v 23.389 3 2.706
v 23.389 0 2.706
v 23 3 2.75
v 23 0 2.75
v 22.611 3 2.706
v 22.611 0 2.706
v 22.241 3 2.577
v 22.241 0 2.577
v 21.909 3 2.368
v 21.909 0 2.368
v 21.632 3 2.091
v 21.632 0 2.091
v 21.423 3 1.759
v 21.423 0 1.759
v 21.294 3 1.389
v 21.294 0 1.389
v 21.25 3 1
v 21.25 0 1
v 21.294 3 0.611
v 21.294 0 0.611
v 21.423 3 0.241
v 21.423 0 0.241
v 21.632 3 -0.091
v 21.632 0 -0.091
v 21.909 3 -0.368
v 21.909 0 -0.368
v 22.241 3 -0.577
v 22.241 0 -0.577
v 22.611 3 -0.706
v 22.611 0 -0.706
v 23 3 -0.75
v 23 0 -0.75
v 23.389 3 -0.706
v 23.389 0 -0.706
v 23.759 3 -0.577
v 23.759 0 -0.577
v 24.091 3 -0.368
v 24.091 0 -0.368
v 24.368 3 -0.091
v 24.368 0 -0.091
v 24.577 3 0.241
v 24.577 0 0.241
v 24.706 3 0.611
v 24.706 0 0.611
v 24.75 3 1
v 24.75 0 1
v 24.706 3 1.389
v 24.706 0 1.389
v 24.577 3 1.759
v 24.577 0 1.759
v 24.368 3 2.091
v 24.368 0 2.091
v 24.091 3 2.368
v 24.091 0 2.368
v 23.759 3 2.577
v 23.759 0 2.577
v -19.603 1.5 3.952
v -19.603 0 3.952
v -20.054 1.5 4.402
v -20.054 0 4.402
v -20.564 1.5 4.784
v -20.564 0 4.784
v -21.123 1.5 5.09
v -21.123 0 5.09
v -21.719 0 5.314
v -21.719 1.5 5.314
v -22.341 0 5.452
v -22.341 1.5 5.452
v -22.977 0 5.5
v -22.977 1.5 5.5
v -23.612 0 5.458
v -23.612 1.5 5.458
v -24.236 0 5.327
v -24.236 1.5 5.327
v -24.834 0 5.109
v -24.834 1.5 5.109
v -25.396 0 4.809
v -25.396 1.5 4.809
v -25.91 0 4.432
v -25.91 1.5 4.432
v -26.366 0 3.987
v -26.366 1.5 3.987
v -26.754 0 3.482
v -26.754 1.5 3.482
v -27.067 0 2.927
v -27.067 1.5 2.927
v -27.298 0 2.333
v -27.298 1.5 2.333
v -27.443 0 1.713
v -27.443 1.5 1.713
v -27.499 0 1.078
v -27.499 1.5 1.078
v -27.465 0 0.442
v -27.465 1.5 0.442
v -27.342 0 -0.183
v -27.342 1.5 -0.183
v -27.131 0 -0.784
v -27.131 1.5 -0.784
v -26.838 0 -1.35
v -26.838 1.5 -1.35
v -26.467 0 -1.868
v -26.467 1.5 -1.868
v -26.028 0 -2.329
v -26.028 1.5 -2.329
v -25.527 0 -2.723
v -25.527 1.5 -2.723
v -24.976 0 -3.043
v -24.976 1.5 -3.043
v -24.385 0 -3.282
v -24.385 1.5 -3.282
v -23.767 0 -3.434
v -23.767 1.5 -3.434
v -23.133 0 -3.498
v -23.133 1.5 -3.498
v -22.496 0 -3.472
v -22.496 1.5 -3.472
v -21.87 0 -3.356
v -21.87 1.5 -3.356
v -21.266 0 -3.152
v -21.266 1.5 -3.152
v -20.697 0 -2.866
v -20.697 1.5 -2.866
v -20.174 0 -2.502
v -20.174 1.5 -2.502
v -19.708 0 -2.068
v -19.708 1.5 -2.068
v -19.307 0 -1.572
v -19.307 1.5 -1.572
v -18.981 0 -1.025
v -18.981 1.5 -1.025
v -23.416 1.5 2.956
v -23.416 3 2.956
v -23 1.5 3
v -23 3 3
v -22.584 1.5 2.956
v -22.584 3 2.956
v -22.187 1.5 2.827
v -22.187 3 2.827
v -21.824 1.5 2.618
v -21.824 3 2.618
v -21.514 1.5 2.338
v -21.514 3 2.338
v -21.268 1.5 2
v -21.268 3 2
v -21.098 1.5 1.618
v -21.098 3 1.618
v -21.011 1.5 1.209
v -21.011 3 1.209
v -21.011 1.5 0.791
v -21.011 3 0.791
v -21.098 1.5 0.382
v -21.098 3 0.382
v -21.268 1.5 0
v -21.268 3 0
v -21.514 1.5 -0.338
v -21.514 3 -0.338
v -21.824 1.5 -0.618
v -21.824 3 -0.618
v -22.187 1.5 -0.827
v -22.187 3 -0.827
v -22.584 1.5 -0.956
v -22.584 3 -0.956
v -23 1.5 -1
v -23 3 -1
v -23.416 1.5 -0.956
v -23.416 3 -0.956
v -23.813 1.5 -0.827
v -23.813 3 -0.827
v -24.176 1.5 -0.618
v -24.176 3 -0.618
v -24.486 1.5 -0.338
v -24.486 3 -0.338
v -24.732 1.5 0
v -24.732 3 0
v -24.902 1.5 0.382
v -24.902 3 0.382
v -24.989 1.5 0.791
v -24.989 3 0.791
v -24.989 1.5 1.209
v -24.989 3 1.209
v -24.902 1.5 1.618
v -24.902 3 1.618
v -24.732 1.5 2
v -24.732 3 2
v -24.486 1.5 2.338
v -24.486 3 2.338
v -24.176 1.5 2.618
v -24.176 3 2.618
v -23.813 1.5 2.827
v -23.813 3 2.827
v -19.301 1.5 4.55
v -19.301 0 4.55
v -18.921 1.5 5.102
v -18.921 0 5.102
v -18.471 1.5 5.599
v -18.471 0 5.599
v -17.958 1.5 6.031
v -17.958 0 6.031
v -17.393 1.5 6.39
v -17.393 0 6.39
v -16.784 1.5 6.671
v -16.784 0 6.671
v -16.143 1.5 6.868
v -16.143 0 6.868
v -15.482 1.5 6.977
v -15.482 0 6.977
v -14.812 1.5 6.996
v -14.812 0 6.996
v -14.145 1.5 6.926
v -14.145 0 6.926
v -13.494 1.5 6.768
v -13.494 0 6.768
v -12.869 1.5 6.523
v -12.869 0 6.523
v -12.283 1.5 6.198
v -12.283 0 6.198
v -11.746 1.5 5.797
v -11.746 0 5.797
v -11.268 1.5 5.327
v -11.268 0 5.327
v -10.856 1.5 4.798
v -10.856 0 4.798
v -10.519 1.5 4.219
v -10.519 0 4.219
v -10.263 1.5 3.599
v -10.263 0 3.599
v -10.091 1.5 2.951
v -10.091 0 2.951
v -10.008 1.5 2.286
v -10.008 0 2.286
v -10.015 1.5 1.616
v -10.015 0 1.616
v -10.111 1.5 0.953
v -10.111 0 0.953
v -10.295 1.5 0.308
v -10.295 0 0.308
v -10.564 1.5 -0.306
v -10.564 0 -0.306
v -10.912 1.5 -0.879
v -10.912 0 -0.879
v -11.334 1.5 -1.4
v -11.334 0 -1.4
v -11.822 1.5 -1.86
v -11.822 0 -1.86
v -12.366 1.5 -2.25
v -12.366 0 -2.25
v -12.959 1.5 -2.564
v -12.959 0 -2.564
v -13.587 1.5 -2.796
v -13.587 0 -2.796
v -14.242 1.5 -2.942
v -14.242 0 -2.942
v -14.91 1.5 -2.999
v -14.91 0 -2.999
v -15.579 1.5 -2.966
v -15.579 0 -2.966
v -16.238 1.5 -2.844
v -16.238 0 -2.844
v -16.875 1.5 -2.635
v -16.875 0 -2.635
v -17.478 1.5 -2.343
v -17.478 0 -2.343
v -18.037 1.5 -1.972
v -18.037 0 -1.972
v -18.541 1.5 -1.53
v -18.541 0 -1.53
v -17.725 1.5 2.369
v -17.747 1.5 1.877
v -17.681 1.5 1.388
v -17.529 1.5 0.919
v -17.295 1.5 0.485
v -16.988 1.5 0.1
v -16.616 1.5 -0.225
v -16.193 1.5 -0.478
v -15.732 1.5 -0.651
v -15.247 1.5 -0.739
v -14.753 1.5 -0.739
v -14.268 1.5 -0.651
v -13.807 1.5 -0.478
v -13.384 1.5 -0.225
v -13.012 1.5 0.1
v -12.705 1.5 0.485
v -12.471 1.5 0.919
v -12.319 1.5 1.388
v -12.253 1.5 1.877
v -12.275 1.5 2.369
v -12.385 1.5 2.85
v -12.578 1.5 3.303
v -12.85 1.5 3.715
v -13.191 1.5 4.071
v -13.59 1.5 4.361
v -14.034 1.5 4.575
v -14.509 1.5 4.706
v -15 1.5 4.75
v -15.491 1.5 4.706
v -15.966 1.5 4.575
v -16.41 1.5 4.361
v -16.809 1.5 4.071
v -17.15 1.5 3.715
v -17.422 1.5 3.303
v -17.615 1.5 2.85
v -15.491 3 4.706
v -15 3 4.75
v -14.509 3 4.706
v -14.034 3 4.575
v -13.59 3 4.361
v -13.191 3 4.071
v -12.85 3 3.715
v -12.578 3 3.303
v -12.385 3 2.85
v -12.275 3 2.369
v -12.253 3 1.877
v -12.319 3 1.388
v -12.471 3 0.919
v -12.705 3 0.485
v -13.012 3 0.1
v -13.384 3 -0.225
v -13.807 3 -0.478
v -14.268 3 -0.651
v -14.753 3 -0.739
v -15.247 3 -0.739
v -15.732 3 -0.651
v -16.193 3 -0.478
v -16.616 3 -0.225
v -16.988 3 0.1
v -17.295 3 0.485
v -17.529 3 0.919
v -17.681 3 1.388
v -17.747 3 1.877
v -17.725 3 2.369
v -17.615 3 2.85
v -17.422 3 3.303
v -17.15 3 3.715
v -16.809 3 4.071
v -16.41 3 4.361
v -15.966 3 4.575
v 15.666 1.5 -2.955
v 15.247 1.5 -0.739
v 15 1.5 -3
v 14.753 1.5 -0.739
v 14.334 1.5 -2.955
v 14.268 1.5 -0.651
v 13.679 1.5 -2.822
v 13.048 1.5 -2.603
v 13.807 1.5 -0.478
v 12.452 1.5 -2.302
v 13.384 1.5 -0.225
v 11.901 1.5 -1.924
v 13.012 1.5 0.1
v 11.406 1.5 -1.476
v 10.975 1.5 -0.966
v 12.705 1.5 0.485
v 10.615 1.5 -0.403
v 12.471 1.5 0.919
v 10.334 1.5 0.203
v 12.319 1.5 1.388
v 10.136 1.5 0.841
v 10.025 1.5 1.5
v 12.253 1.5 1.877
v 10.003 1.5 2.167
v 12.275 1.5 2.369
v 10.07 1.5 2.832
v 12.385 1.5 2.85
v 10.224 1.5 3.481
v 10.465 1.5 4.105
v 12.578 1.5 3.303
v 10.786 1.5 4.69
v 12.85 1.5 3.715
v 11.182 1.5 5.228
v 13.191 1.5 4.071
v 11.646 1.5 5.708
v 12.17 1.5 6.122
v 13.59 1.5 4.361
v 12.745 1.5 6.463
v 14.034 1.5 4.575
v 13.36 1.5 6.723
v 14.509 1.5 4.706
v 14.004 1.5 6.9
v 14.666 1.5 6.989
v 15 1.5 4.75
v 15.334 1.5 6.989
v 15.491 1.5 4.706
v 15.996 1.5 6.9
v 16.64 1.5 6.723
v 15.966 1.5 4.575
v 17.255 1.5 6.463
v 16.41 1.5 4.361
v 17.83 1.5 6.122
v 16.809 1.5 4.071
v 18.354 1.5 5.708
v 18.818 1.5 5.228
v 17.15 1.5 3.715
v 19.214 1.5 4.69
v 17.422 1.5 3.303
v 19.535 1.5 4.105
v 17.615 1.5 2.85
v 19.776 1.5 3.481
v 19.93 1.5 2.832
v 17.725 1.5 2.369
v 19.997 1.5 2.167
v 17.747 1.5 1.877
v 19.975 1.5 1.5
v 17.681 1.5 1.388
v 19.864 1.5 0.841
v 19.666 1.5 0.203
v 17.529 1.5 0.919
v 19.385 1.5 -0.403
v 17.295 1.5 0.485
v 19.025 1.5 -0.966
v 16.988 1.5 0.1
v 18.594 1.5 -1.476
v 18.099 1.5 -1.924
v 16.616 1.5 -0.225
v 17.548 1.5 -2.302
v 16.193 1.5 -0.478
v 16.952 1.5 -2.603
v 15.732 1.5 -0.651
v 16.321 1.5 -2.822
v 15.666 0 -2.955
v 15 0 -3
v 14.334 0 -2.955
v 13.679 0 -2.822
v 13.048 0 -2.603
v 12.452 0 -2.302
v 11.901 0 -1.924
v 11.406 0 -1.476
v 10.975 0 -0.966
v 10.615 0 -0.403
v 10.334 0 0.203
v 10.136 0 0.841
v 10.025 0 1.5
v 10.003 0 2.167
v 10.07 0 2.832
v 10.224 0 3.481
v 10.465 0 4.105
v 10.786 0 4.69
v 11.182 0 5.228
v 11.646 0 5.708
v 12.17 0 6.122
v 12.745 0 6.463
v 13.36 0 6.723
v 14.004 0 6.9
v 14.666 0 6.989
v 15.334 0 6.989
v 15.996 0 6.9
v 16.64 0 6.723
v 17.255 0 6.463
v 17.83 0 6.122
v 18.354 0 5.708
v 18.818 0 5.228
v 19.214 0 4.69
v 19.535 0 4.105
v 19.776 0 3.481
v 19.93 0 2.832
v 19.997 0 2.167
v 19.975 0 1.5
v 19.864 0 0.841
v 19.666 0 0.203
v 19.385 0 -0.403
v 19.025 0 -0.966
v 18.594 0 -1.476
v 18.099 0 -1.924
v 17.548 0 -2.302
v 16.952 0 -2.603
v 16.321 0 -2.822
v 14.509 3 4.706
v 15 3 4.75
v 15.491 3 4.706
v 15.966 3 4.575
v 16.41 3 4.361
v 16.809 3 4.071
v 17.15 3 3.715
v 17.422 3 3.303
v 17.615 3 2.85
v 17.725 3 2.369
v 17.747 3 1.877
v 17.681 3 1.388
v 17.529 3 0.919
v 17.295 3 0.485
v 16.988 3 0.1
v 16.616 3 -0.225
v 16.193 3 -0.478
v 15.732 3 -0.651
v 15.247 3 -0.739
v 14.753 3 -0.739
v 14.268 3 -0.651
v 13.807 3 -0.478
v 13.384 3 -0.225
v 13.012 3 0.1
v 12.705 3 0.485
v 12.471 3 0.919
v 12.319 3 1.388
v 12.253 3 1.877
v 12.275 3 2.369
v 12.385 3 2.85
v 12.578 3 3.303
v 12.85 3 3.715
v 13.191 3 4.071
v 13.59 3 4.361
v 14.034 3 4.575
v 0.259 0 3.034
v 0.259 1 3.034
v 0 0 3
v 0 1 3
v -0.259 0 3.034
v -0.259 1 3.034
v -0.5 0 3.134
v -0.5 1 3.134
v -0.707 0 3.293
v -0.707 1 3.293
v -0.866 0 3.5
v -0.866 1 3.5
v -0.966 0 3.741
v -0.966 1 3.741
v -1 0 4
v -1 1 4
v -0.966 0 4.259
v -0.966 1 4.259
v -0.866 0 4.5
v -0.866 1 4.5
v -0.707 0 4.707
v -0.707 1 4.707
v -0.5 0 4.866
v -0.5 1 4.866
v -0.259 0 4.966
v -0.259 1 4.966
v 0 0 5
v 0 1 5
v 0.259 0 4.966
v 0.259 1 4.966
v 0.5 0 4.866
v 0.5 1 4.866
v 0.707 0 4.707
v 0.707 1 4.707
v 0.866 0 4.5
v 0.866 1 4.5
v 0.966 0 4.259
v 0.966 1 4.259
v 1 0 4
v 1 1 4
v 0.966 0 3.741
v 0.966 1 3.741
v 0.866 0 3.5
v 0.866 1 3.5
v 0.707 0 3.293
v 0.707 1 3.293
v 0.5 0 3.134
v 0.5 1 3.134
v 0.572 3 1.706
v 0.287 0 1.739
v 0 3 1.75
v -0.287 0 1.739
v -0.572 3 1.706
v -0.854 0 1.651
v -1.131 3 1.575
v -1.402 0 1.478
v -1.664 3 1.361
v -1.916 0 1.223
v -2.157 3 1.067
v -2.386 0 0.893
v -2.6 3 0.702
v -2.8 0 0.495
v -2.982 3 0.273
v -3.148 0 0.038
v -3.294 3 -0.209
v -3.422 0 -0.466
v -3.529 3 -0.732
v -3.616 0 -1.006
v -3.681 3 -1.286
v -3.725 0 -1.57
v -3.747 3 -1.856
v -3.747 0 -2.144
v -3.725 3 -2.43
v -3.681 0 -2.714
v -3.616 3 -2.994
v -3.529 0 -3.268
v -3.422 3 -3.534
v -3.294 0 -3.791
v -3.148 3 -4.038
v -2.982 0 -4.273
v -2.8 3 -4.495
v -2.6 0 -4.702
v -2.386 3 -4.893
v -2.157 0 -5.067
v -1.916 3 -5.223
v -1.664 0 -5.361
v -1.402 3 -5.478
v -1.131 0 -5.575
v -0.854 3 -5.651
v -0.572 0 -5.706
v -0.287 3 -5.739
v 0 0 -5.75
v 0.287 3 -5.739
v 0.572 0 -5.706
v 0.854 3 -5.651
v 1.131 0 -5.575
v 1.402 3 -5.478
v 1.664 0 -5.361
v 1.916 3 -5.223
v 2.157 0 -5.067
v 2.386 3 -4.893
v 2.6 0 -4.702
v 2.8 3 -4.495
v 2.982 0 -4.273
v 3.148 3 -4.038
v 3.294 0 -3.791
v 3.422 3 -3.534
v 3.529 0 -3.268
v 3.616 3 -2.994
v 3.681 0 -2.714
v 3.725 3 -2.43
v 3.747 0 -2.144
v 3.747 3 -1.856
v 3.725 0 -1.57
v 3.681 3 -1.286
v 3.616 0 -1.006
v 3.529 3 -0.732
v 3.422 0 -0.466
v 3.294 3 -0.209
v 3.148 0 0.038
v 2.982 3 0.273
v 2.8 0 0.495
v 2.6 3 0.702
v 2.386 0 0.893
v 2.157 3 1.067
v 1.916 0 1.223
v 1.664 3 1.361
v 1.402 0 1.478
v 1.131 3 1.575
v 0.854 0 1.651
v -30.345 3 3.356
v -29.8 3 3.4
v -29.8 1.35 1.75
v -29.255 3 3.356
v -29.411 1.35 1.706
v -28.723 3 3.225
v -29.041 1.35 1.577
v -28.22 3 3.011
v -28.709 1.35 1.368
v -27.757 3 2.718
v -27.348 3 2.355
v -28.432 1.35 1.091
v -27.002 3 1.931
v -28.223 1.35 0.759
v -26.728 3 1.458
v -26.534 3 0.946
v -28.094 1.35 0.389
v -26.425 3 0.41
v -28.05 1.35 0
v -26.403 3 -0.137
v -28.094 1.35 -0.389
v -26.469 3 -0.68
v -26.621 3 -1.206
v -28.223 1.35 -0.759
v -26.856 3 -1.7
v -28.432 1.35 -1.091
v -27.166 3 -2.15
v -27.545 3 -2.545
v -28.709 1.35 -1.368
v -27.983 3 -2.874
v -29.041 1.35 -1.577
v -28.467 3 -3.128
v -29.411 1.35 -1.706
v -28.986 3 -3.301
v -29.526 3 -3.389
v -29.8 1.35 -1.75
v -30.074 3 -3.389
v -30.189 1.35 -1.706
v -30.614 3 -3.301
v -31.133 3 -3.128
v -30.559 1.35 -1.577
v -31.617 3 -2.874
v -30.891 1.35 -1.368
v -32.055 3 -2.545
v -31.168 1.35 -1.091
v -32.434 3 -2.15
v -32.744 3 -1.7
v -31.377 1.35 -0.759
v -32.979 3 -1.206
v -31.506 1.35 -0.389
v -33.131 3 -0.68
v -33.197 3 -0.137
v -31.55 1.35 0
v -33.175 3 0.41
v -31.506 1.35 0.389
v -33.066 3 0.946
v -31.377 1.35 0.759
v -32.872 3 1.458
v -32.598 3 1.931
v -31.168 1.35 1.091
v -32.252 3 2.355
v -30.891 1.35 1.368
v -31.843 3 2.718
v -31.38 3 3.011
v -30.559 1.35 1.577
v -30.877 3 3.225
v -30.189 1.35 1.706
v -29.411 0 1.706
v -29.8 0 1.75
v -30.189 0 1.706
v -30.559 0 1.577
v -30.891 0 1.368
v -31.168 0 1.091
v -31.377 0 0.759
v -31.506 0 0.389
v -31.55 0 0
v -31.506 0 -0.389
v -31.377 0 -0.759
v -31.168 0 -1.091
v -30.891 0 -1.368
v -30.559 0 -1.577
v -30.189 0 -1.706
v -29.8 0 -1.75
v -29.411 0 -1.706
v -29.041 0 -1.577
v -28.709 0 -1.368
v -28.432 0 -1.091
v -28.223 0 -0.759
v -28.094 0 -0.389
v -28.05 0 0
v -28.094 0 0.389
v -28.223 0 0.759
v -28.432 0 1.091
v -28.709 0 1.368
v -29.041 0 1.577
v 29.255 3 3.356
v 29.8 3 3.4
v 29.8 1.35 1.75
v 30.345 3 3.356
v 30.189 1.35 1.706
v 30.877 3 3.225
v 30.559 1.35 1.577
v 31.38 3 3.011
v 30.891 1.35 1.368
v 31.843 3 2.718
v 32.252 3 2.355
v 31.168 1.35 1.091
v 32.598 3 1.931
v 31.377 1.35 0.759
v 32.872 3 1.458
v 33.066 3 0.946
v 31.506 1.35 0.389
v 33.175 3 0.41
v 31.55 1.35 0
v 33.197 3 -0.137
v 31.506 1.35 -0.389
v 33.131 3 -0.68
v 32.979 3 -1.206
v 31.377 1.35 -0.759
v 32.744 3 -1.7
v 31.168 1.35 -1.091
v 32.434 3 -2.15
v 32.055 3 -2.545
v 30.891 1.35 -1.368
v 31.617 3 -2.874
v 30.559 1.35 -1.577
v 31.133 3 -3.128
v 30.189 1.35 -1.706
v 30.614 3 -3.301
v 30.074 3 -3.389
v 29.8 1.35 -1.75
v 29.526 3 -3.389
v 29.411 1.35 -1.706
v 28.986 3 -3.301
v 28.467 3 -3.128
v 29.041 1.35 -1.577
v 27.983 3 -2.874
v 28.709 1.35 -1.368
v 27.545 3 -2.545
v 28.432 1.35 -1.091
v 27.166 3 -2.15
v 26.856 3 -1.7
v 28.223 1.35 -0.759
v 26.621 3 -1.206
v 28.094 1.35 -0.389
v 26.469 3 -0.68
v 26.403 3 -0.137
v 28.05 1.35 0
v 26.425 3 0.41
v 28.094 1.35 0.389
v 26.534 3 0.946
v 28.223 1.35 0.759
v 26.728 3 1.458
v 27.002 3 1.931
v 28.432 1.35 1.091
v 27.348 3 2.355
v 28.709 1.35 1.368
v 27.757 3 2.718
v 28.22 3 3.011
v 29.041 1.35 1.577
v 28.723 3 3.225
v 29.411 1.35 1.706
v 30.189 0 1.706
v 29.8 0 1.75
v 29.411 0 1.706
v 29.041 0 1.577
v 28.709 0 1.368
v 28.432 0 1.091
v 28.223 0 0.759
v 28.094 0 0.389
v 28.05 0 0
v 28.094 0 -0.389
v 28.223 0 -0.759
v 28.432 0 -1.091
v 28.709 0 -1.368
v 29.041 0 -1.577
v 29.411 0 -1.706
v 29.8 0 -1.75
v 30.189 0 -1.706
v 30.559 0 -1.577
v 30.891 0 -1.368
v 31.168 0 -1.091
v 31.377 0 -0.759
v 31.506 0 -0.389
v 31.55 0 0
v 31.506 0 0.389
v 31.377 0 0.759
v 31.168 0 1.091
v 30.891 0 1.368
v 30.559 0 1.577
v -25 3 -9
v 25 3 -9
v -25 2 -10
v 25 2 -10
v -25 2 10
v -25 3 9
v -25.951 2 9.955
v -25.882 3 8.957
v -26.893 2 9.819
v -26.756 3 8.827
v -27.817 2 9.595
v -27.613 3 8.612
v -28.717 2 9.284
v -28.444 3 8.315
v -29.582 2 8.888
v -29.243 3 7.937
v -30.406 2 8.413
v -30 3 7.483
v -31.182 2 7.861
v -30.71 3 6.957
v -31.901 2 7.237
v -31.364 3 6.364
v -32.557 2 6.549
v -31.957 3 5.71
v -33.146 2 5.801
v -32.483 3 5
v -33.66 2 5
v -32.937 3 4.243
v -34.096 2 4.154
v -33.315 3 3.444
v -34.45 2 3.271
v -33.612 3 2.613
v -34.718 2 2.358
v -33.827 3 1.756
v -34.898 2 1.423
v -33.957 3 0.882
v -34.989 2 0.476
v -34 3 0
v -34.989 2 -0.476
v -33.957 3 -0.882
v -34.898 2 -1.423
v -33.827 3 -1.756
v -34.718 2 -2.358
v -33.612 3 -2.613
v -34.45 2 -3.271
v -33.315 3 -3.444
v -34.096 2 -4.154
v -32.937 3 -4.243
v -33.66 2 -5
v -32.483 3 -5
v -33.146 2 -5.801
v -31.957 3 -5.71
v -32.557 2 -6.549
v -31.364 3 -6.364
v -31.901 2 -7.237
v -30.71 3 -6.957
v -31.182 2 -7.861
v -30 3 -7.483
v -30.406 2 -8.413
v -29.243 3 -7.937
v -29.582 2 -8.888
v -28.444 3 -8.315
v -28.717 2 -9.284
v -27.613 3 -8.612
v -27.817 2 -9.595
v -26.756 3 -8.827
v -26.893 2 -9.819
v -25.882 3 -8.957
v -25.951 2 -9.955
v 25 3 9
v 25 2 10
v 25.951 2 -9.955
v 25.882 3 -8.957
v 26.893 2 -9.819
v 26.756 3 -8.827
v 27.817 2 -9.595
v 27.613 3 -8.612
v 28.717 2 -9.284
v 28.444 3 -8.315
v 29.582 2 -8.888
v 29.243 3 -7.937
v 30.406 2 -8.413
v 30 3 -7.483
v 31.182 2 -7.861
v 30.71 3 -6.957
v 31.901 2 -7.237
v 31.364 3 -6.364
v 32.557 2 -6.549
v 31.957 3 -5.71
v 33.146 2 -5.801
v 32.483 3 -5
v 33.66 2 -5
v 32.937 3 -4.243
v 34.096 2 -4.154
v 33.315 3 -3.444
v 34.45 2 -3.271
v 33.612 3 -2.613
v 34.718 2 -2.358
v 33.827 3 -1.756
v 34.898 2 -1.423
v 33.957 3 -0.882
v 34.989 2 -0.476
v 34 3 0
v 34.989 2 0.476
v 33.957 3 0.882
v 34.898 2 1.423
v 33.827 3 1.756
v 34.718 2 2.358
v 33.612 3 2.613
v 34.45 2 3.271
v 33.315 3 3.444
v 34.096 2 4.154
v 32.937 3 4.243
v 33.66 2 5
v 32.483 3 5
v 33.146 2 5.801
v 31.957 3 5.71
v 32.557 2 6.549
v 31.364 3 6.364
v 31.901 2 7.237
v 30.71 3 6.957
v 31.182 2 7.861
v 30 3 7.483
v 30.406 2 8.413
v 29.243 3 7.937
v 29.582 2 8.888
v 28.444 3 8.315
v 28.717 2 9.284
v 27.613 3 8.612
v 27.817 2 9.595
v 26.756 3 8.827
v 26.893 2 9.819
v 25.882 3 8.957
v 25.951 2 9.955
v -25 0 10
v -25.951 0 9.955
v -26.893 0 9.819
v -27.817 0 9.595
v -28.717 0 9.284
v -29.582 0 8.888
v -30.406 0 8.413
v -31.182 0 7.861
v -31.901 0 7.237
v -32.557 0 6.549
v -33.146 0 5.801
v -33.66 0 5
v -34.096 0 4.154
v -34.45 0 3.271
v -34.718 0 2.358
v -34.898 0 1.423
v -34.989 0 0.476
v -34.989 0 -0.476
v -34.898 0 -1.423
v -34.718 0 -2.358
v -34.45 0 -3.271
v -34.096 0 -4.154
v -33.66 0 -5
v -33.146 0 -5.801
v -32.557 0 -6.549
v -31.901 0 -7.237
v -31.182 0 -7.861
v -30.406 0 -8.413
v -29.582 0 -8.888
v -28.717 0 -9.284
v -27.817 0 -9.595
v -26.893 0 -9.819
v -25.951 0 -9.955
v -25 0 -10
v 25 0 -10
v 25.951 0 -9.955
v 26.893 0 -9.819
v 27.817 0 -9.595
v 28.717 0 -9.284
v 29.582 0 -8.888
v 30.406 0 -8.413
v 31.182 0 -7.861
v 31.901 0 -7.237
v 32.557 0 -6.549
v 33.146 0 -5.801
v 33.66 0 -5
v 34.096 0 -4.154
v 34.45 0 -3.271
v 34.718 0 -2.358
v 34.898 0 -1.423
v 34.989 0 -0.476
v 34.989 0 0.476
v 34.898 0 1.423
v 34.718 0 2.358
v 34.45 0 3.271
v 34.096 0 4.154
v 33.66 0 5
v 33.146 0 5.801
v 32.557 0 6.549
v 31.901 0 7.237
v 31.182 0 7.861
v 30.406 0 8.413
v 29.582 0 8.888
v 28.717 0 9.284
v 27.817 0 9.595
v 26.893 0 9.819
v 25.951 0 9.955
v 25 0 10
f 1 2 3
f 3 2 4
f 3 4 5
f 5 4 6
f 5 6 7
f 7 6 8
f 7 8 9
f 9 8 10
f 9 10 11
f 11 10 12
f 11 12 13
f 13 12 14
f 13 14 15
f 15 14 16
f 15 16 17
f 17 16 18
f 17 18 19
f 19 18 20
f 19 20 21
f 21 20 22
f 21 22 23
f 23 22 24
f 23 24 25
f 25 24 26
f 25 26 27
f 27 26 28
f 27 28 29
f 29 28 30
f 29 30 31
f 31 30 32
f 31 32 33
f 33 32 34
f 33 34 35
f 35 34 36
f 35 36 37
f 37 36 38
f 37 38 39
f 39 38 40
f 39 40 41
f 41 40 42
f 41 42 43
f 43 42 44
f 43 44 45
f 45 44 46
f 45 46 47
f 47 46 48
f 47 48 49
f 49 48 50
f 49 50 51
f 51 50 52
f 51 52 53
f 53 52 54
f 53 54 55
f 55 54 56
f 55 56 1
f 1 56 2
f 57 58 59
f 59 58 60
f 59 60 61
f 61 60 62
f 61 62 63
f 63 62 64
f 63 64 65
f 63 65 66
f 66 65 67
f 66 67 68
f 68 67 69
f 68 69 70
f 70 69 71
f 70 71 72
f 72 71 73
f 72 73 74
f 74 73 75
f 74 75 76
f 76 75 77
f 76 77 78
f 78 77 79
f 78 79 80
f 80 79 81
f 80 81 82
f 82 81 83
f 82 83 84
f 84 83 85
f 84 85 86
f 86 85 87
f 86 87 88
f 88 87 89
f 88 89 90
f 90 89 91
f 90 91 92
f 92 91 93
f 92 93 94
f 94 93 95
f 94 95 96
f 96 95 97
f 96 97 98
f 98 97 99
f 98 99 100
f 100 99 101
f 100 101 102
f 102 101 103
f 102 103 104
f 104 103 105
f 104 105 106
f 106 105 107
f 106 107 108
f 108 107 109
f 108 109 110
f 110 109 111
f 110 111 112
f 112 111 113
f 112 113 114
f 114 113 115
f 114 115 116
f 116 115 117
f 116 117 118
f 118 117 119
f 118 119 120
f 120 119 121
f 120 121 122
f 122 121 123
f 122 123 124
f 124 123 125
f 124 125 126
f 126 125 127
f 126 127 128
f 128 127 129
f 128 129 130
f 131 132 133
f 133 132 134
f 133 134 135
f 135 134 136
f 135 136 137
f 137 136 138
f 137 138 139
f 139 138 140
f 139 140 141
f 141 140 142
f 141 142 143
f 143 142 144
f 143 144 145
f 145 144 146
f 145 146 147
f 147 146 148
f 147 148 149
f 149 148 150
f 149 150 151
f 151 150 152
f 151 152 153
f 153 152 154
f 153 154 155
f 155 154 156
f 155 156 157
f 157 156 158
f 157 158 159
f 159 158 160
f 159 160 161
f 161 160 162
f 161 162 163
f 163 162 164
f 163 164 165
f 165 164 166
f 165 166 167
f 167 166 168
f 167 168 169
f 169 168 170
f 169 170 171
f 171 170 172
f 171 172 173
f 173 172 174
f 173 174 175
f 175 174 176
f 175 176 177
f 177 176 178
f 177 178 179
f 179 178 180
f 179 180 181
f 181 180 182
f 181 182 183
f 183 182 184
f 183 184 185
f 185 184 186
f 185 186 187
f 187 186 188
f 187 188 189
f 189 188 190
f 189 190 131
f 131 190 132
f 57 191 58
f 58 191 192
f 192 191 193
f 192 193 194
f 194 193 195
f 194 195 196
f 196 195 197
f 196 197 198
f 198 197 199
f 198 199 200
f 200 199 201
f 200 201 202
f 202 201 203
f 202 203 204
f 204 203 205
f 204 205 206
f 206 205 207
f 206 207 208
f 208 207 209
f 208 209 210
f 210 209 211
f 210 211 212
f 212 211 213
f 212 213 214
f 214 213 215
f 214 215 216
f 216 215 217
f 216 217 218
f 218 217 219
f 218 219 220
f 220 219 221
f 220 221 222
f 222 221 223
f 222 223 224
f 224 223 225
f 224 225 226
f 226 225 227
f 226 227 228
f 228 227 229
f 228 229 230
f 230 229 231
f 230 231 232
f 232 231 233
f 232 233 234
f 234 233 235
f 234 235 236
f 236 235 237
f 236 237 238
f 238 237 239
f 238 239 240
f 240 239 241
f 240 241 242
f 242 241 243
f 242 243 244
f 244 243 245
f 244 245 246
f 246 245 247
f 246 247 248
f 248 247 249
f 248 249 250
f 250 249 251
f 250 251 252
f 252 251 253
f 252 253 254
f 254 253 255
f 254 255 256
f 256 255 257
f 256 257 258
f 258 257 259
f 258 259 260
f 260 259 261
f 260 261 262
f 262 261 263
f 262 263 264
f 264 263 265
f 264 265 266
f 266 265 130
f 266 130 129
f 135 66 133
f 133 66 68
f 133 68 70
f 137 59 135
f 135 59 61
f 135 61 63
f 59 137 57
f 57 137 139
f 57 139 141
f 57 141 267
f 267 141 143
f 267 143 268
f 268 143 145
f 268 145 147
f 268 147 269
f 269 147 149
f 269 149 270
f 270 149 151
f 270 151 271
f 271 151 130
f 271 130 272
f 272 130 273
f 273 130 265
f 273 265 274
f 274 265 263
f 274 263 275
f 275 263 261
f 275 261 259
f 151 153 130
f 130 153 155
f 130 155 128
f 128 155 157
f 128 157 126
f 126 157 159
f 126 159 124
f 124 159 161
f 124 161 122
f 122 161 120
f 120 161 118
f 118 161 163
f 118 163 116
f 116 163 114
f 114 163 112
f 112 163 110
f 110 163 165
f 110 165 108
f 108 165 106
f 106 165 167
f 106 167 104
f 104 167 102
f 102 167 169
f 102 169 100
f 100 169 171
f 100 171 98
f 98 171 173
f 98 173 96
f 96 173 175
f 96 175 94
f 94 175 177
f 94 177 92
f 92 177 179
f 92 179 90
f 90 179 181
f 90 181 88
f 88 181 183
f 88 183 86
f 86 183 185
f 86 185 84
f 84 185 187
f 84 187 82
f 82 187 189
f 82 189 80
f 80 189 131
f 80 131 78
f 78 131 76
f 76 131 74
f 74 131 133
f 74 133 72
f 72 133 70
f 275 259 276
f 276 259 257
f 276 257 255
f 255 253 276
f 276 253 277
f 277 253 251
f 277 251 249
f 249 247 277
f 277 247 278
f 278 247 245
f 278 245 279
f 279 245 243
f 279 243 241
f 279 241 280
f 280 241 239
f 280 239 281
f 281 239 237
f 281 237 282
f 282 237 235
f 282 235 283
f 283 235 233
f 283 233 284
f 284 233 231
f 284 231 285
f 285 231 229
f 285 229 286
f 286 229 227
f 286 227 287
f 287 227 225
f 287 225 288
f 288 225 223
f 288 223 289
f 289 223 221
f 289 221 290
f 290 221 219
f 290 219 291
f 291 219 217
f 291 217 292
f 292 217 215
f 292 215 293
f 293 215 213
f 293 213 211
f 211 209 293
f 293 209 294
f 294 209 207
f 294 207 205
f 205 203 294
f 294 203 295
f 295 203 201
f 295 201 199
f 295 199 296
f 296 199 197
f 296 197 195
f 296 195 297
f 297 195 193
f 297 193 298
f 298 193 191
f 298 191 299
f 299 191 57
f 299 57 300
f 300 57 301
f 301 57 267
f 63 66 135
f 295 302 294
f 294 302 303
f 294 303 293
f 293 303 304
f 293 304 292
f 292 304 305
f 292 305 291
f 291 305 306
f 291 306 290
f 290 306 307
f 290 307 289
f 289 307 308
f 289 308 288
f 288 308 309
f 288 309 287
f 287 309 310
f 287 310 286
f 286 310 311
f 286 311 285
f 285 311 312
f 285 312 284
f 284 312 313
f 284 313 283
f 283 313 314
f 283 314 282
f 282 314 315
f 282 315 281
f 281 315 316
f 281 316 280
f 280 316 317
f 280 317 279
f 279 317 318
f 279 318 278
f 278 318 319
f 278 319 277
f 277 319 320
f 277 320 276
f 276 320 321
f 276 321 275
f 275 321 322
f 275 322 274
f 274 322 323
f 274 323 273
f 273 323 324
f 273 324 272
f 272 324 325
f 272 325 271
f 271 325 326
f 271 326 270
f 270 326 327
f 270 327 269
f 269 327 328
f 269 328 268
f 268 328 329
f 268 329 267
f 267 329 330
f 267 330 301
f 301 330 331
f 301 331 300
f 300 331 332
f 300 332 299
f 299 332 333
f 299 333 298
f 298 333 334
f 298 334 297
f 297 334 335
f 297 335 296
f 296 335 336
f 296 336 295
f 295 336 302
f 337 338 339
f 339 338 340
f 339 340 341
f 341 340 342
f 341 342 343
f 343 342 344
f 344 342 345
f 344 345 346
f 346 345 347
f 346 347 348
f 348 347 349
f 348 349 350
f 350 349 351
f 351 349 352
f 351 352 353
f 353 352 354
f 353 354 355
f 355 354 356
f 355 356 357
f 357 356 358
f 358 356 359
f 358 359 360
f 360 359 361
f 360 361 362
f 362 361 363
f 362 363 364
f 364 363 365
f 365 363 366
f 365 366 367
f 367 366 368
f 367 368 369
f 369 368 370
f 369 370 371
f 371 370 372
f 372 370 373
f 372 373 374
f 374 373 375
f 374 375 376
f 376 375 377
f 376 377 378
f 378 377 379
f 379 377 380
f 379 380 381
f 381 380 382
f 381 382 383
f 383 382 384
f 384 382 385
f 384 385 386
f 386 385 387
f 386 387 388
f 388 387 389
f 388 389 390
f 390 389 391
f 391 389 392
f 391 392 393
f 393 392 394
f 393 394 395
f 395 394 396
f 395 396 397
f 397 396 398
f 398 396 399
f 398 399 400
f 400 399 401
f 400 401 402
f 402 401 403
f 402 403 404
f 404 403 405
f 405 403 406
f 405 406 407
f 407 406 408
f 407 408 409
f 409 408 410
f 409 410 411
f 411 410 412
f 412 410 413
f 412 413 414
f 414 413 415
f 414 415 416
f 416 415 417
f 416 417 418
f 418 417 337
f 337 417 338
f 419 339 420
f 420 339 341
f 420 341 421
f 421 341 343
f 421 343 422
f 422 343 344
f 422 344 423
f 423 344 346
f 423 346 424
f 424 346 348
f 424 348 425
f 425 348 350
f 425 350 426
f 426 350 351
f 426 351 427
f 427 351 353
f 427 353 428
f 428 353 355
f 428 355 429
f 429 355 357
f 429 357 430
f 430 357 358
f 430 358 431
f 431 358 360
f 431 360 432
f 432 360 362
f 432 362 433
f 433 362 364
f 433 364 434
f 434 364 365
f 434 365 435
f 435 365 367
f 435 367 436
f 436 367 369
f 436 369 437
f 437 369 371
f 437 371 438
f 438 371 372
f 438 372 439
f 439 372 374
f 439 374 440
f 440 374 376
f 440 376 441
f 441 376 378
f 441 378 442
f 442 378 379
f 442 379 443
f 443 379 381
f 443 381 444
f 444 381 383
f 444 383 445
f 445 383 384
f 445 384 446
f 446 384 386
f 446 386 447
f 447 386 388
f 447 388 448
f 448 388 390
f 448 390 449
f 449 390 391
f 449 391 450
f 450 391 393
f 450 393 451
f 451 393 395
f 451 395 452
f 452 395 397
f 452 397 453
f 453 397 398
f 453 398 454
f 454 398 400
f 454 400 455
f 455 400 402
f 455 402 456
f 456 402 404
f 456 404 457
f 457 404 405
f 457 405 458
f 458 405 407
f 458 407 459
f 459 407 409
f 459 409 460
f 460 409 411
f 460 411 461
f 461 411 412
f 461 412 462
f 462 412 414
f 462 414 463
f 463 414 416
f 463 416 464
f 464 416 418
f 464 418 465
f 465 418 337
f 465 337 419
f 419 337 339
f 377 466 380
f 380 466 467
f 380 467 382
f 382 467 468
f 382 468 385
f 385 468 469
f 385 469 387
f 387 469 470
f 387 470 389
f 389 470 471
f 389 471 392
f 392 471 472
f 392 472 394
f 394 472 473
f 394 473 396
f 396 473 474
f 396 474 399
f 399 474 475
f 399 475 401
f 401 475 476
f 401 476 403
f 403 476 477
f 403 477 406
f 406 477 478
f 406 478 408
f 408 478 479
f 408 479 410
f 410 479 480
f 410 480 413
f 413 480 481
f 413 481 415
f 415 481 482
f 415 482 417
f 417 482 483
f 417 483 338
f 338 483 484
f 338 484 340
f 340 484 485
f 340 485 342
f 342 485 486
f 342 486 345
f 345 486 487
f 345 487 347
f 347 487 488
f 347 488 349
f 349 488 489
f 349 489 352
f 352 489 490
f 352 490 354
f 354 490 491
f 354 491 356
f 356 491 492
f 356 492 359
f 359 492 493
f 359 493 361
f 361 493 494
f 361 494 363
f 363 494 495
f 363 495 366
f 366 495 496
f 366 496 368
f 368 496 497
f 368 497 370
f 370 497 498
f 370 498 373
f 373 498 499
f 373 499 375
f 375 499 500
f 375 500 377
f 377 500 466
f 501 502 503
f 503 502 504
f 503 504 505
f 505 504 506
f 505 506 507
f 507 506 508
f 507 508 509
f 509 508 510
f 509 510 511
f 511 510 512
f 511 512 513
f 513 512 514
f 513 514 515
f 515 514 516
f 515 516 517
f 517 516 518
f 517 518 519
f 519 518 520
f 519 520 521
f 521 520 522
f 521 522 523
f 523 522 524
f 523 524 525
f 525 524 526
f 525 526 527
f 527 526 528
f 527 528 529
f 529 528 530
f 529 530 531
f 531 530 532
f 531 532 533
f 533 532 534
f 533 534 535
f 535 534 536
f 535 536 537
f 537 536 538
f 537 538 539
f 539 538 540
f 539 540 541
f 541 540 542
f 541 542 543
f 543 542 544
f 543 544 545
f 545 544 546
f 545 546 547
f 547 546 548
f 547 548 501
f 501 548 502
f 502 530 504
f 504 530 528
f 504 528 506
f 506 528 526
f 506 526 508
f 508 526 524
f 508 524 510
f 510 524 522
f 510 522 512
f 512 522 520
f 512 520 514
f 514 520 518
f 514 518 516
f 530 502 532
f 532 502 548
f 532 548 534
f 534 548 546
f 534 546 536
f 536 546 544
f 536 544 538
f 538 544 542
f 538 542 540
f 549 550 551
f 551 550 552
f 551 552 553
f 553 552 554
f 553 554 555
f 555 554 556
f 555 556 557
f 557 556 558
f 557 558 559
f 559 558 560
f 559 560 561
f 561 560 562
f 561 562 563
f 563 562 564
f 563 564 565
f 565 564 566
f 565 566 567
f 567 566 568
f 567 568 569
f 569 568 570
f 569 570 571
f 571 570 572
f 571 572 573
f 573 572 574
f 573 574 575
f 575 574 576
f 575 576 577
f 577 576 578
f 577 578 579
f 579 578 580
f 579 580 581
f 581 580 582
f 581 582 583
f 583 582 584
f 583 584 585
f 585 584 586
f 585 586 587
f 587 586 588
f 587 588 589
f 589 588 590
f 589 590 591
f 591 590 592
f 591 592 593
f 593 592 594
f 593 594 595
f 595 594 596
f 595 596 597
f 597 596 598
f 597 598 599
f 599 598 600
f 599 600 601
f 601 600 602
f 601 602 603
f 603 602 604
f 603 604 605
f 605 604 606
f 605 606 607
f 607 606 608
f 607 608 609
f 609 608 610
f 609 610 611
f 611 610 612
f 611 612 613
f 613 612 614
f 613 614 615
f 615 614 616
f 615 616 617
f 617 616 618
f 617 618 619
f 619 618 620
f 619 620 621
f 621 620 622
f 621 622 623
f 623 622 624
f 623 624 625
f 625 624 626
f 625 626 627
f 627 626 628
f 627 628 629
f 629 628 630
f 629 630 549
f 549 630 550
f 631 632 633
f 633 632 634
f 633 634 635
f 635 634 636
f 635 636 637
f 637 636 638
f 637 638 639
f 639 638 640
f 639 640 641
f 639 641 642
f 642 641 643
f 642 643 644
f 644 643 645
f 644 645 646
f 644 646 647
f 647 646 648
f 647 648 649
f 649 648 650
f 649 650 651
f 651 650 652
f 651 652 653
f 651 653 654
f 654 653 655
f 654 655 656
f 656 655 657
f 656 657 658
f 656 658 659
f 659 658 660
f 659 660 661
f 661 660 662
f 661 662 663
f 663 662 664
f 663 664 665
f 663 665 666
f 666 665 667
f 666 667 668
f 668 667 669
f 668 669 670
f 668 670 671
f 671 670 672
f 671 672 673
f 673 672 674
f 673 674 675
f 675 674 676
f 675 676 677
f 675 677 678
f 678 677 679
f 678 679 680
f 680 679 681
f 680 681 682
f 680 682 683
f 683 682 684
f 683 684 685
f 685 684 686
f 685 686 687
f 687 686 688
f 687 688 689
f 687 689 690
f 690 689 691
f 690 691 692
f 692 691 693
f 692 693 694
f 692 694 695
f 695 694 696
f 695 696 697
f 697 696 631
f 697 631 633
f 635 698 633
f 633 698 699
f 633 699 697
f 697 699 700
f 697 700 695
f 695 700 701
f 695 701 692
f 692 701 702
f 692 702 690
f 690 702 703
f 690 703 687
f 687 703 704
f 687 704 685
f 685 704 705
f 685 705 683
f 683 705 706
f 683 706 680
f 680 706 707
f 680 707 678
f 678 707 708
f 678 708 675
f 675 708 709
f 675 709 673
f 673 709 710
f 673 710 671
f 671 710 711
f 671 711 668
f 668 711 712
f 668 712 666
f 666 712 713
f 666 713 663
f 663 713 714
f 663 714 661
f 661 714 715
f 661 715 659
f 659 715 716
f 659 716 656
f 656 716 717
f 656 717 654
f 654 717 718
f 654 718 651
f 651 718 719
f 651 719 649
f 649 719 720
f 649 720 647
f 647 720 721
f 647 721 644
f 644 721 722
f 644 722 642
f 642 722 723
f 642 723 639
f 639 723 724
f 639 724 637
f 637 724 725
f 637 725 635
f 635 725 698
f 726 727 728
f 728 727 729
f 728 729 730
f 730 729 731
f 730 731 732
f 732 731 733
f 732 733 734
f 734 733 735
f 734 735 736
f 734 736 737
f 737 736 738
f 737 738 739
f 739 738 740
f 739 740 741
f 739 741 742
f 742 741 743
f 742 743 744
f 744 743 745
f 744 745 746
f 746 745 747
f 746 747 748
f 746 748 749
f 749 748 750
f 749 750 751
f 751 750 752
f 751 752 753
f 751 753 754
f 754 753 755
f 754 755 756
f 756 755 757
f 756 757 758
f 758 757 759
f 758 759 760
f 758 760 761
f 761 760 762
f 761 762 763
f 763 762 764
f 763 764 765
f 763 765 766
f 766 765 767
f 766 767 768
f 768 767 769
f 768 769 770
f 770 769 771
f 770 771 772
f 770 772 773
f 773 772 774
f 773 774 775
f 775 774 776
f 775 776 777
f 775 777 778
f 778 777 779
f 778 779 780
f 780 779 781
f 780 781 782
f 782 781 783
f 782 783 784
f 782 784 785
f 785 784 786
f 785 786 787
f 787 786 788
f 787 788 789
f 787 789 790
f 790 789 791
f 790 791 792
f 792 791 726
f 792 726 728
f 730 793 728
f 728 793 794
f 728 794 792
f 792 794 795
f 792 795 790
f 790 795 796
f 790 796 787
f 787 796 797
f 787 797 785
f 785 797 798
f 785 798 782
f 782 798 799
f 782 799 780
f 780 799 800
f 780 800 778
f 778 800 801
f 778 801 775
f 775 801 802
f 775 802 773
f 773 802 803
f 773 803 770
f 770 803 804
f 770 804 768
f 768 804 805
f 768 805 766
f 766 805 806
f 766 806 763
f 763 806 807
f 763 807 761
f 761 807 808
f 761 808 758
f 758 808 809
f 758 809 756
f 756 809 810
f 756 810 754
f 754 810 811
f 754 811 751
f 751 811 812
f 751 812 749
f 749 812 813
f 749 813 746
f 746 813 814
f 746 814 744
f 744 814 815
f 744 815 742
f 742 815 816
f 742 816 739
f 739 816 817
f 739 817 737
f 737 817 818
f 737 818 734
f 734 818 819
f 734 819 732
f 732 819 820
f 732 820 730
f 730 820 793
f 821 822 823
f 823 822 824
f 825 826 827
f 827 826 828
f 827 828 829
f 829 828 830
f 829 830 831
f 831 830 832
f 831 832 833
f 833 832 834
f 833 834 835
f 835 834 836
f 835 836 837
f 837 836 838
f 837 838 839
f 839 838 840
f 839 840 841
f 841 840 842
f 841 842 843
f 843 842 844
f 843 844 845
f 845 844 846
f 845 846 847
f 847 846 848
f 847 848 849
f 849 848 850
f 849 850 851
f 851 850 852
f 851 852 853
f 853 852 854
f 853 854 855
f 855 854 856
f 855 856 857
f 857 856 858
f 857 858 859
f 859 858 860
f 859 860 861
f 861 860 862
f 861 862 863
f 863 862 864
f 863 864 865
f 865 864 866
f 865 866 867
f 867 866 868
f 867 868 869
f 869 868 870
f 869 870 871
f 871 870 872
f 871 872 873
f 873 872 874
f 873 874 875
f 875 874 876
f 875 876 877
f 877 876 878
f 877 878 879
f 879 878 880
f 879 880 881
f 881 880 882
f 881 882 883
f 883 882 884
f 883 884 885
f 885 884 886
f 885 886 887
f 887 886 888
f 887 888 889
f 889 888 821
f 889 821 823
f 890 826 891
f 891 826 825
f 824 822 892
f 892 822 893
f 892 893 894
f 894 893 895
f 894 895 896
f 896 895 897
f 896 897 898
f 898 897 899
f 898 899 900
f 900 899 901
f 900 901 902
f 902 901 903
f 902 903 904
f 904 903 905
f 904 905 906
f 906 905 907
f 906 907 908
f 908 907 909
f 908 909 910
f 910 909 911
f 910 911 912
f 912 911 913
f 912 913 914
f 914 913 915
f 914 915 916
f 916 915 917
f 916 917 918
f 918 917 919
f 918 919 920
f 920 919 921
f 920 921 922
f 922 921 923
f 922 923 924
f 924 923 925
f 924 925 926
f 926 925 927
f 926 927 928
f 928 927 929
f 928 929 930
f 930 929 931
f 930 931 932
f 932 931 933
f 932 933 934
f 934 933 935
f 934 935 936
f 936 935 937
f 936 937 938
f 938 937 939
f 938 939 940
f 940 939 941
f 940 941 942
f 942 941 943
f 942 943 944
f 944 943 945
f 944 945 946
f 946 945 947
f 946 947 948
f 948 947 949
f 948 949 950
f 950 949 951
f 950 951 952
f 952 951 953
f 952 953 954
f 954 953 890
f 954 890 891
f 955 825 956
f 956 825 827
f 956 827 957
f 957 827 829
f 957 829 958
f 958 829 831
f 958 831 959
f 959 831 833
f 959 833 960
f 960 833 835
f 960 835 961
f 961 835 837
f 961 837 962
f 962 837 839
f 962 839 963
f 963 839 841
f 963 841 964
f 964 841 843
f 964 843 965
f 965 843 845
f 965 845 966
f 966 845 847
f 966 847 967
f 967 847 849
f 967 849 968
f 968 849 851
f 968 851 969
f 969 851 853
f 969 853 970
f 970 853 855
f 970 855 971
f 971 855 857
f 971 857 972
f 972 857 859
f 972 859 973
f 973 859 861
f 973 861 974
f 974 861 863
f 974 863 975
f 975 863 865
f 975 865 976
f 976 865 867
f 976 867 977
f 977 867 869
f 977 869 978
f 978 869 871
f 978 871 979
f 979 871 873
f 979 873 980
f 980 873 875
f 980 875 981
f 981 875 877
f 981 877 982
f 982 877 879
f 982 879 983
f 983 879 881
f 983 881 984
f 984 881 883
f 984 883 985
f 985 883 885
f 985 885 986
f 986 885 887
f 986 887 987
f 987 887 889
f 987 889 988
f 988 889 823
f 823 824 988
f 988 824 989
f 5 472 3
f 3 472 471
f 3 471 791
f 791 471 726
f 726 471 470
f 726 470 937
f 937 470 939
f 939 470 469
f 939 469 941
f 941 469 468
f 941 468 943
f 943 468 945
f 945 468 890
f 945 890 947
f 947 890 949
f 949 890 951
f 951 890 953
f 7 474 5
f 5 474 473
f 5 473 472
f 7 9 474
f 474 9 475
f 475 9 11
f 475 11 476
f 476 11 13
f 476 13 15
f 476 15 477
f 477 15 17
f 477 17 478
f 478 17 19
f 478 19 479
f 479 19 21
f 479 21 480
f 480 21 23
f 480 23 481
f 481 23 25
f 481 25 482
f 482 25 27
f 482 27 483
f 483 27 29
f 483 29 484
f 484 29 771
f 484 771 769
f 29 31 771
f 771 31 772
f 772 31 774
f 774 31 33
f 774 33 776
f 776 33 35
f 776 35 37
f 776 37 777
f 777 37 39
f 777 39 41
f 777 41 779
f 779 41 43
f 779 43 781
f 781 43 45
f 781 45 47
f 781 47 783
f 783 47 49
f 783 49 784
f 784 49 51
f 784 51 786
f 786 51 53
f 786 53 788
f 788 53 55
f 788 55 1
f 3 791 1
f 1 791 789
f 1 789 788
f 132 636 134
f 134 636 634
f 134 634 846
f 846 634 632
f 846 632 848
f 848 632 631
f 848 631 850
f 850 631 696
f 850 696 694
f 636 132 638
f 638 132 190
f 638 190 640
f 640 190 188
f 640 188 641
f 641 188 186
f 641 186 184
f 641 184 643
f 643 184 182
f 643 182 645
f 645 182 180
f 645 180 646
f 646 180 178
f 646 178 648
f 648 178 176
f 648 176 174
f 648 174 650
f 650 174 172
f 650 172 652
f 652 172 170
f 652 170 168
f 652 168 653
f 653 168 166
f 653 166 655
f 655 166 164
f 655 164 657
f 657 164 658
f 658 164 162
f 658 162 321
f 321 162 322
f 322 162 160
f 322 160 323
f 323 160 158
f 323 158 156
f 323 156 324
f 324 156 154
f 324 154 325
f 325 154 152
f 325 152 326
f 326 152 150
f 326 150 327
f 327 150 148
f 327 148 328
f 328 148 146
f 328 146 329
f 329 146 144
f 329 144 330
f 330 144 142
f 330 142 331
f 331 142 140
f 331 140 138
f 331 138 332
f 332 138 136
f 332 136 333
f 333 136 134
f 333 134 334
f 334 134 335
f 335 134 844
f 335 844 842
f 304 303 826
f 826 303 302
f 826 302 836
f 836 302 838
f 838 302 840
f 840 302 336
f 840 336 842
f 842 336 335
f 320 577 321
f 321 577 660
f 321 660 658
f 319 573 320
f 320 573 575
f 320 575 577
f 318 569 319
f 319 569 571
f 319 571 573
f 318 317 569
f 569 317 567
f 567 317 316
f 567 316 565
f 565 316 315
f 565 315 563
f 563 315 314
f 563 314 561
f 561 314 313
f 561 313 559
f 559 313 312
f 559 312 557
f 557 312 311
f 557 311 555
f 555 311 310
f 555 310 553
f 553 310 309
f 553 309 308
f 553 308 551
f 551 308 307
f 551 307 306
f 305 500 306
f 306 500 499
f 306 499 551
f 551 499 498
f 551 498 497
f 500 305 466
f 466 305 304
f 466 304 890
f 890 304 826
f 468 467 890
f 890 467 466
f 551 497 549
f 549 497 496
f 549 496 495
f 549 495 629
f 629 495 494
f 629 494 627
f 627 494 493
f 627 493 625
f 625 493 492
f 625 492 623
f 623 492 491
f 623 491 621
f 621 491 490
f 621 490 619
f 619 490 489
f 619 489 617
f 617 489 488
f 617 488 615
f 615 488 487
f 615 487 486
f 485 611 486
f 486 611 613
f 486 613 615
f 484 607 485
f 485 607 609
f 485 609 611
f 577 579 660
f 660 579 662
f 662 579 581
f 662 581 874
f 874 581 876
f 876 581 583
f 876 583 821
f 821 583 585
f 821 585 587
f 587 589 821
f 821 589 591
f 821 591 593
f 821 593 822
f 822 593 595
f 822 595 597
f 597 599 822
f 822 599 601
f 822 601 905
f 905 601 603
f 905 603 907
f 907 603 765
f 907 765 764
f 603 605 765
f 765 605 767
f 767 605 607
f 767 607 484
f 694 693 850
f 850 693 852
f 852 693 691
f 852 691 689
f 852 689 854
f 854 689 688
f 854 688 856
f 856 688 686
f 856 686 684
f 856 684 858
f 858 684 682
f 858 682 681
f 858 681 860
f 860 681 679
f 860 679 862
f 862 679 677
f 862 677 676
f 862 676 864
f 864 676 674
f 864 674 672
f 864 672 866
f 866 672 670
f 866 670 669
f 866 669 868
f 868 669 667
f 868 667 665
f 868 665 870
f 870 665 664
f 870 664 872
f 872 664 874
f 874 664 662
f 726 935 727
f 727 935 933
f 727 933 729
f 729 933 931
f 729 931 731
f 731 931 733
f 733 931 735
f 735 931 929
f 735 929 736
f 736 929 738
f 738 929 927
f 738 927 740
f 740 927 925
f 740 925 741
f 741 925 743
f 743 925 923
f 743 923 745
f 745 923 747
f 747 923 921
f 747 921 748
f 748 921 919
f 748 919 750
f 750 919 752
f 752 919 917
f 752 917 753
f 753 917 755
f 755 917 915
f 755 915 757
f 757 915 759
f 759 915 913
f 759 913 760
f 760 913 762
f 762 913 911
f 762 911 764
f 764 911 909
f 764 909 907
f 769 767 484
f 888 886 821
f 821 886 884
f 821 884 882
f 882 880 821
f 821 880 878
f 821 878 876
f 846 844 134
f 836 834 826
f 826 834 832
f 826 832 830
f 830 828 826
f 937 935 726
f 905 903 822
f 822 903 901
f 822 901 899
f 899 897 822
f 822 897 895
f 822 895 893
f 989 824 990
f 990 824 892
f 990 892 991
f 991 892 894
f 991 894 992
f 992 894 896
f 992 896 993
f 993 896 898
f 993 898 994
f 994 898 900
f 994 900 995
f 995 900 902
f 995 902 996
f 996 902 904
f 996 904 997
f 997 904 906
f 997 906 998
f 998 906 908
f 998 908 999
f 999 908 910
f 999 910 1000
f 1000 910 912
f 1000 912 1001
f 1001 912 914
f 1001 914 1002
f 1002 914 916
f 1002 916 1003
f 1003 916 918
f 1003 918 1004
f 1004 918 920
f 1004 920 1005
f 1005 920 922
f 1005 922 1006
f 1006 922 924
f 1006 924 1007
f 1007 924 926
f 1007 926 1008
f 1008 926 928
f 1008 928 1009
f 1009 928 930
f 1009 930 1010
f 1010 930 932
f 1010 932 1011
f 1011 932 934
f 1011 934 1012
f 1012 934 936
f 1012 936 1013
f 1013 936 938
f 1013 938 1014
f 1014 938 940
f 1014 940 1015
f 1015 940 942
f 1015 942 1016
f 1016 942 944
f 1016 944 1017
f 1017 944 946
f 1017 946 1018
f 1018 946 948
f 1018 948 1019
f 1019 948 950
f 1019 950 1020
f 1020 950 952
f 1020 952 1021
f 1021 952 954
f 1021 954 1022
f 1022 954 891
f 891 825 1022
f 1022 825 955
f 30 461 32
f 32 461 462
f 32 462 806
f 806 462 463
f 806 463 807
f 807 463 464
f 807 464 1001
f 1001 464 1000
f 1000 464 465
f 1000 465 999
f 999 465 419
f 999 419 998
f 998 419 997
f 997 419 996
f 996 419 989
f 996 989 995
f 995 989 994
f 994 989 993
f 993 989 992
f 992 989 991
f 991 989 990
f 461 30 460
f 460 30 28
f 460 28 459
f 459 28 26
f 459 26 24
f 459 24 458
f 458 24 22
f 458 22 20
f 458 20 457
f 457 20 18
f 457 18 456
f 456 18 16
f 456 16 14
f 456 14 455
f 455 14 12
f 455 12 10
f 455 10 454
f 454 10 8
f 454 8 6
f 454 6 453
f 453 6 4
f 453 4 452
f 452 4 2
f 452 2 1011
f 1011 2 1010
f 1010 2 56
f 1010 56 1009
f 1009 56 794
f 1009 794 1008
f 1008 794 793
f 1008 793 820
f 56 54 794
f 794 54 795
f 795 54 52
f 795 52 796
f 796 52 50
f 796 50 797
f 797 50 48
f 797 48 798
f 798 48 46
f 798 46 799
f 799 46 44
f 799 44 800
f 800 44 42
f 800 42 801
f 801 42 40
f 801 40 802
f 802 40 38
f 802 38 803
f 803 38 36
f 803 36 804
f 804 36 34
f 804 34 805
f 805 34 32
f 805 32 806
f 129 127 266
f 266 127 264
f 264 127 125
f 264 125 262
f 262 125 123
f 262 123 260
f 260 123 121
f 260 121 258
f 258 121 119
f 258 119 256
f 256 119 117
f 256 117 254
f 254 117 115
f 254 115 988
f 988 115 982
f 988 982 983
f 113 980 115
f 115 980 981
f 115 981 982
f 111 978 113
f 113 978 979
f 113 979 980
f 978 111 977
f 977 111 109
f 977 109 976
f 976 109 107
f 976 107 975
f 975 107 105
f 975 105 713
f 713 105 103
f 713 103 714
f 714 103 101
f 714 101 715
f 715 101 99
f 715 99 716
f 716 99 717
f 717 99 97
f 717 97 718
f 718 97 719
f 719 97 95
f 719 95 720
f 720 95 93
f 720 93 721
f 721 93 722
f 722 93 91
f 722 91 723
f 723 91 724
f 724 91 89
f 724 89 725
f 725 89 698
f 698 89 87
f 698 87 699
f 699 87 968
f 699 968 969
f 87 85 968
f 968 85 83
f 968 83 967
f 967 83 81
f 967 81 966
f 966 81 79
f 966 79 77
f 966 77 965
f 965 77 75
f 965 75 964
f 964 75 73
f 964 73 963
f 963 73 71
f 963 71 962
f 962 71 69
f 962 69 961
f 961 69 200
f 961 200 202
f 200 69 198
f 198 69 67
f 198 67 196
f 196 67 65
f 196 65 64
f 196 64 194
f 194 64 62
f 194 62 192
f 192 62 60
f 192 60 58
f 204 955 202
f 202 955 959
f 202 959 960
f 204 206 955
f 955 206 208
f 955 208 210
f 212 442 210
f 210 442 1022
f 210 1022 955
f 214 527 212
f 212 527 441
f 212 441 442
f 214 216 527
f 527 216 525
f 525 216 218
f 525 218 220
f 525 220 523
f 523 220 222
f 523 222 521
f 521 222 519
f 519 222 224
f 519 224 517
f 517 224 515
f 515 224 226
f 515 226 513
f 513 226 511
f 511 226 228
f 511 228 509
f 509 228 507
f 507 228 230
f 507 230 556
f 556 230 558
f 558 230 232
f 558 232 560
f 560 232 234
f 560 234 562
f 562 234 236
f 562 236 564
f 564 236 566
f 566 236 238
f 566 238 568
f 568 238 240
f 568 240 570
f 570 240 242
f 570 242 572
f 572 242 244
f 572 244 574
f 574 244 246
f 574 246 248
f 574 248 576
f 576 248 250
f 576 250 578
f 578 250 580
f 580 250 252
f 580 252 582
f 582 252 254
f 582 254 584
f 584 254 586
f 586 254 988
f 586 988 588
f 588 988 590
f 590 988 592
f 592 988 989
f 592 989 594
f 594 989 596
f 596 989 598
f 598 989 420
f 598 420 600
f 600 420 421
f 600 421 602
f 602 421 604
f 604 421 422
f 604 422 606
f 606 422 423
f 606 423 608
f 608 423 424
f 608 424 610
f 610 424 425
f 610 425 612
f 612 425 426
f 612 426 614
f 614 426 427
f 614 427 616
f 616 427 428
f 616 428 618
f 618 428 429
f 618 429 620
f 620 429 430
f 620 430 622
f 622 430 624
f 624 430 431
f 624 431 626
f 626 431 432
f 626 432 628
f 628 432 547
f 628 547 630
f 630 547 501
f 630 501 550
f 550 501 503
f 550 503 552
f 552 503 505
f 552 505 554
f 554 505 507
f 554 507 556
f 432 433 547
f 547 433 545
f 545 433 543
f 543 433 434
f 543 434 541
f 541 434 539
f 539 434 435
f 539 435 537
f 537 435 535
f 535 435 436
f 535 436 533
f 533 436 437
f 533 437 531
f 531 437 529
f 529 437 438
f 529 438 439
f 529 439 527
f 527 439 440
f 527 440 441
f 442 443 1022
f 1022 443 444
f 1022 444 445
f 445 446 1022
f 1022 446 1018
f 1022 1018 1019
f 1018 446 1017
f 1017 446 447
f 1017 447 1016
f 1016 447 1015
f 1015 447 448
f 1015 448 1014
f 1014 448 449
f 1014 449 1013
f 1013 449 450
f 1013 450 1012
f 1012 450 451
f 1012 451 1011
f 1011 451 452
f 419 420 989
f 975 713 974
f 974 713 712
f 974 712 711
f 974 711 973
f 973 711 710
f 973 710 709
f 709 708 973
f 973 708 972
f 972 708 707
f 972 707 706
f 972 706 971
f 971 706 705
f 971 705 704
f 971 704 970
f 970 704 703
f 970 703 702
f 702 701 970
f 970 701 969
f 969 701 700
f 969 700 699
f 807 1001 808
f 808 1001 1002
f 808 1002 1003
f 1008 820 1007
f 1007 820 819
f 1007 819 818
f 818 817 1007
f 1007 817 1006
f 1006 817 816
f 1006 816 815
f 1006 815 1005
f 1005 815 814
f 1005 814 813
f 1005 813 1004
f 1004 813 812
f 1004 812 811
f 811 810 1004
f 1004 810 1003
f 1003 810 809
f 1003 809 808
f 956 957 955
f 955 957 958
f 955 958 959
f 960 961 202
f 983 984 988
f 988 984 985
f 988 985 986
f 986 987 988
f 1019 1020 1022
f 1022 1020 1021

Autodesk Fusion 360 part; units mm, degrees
sketch "スケッチ1" plane through (0, 0, 0) normal (0, 1, 0) x (1, 0, 0)
  line L0 (-25, -10) -> (25, -10)
  arc A0 (25, -10) -> (25, 10) centre (25, 0) ccw
  line L1 (25, 10) -> (-25, 10)
  arc A1 (-25, 10) -> (-25, -10) centre (-25, 0) ccw
  line L2 (-25, 0) -> (25, 0) construction
  line L3 (-23, 10) -> (-23, -10) construction
  line L4 (-15, 10) -> (-15, -10) construction
  line L5 (15, 10) -> (15, -10) construction
  line L6 (23, 10) -> (23, -10) construction
  line L7 (-23, -1) -> (23, -1) construction
  line L8 (-15, -2) -> (15, -2) construction
  line L9 (0, 10) -> (0, -10) construction
  line L10 (-24.25, -0.25) -> (-24.25, -1.75)
  arc A2 (-24.25, -1.75) -> (-21.75, -1.75) centre (-23, -1.75) ccw
  line L11 (-21.75, -1.75) -> (-21.75, -0.25)
  arc A3 (-21.75, -0.25) -> (-24.25, -0.25) centre (-23, -0.25) ccw
  line L12 (-23, -0.25) -> (-23, -1.75) construction
  point P0 (-35, 0)
  point P1 (35, 0)
  point P2 (-23, -1)
  point P3 (-15, -2)
  point P4 (15, -2)
  point P5 (23, -1)
  point P6 (0, 2)
  point P7 (0, -4)
  point P8 (-23, -1)
  point P9 (-23, 1)
  point P10 (-23, -3)
  dimension "d1" = 20
  dimension "d2" = 70
  dimension "d13" = 6
  dimension "d14" = 12
  dimension "d15" = 9
  dimension "d16" = 8
  dimension "d17" = 15
  dimension "d18" = 15
  dimension "d19" = 23
  dimension "d20" = 23
  dimension "d40" = 4
  dimension "d41" = 2.5
extrude "押し出し1" add sketch "スケッチ1" along normal blind 3 contours L0 A0 L1 A1 | L10 A2 L11 A3
chamfer "面取り1" distance 1 angle 45 4 edges at (0, 3, -10) (-35, 3, 0) (0, 3, 10) (35, 3, 0)
sketch "スケッチ2" plane through (0, 3, 0) normal (0, 1, 0) x (-1, 0, 0)
  line L0 (-25, -9) -> (25, -9)
  arc A0 (25, -9) -> (25, 9) centre (25, 0) ccw
  line L1 (25, 9) -> (-25, 9)
  arc A1 (-25, 9) -> (-25, -9) centre (-25, 0) ccw
  arc A2 (25, -10) -> (25, 10) centre (25, 0) ccw
  line L2 (-25, -10) -> (25, -10)
  arc A3 (-25, 10) -> (-25, -10) centre (-25, 0) ccw
  line L3 (25, 10) -> (-25, 10)
  line L4 (35, 0) -> (-35, 0) construction
  point P0 (29.8, 0)
  point P1 (-29.8, 0)
  dimension "d6" = 5.2
  dimension "d7" = 5.2
hole "穴1" at (-29.8, 3, 0) at (29.8, 3, 0) direction (0, -1, 0) diameter 3.5 end through all countersink diameter 6.8 countersink angle 90
hole "穴2" at (0, 0, -2) direction (0, 1, 0) diameter 7.5 end through all
hole "穴3" at (0, 0, 4) direction (0, 1, 0) diameter 2 depth 1 tip angle 180
hole "穴4" at (-15, 0, 2) at (15, 0, 2) direction (0, 1, 0) diameter 5.5 end through all counterbore diameter 10 counterbore depth 1.5
hole "穴5" at (-23, 0, 1) direction (0, 1, 0) diameter 4 end through all counterbore diameter 9 counterbore depth 1.5
hole "穴6" at (23, 0, 1) direction (0, 1, 0) diameter 3.5 end through all
